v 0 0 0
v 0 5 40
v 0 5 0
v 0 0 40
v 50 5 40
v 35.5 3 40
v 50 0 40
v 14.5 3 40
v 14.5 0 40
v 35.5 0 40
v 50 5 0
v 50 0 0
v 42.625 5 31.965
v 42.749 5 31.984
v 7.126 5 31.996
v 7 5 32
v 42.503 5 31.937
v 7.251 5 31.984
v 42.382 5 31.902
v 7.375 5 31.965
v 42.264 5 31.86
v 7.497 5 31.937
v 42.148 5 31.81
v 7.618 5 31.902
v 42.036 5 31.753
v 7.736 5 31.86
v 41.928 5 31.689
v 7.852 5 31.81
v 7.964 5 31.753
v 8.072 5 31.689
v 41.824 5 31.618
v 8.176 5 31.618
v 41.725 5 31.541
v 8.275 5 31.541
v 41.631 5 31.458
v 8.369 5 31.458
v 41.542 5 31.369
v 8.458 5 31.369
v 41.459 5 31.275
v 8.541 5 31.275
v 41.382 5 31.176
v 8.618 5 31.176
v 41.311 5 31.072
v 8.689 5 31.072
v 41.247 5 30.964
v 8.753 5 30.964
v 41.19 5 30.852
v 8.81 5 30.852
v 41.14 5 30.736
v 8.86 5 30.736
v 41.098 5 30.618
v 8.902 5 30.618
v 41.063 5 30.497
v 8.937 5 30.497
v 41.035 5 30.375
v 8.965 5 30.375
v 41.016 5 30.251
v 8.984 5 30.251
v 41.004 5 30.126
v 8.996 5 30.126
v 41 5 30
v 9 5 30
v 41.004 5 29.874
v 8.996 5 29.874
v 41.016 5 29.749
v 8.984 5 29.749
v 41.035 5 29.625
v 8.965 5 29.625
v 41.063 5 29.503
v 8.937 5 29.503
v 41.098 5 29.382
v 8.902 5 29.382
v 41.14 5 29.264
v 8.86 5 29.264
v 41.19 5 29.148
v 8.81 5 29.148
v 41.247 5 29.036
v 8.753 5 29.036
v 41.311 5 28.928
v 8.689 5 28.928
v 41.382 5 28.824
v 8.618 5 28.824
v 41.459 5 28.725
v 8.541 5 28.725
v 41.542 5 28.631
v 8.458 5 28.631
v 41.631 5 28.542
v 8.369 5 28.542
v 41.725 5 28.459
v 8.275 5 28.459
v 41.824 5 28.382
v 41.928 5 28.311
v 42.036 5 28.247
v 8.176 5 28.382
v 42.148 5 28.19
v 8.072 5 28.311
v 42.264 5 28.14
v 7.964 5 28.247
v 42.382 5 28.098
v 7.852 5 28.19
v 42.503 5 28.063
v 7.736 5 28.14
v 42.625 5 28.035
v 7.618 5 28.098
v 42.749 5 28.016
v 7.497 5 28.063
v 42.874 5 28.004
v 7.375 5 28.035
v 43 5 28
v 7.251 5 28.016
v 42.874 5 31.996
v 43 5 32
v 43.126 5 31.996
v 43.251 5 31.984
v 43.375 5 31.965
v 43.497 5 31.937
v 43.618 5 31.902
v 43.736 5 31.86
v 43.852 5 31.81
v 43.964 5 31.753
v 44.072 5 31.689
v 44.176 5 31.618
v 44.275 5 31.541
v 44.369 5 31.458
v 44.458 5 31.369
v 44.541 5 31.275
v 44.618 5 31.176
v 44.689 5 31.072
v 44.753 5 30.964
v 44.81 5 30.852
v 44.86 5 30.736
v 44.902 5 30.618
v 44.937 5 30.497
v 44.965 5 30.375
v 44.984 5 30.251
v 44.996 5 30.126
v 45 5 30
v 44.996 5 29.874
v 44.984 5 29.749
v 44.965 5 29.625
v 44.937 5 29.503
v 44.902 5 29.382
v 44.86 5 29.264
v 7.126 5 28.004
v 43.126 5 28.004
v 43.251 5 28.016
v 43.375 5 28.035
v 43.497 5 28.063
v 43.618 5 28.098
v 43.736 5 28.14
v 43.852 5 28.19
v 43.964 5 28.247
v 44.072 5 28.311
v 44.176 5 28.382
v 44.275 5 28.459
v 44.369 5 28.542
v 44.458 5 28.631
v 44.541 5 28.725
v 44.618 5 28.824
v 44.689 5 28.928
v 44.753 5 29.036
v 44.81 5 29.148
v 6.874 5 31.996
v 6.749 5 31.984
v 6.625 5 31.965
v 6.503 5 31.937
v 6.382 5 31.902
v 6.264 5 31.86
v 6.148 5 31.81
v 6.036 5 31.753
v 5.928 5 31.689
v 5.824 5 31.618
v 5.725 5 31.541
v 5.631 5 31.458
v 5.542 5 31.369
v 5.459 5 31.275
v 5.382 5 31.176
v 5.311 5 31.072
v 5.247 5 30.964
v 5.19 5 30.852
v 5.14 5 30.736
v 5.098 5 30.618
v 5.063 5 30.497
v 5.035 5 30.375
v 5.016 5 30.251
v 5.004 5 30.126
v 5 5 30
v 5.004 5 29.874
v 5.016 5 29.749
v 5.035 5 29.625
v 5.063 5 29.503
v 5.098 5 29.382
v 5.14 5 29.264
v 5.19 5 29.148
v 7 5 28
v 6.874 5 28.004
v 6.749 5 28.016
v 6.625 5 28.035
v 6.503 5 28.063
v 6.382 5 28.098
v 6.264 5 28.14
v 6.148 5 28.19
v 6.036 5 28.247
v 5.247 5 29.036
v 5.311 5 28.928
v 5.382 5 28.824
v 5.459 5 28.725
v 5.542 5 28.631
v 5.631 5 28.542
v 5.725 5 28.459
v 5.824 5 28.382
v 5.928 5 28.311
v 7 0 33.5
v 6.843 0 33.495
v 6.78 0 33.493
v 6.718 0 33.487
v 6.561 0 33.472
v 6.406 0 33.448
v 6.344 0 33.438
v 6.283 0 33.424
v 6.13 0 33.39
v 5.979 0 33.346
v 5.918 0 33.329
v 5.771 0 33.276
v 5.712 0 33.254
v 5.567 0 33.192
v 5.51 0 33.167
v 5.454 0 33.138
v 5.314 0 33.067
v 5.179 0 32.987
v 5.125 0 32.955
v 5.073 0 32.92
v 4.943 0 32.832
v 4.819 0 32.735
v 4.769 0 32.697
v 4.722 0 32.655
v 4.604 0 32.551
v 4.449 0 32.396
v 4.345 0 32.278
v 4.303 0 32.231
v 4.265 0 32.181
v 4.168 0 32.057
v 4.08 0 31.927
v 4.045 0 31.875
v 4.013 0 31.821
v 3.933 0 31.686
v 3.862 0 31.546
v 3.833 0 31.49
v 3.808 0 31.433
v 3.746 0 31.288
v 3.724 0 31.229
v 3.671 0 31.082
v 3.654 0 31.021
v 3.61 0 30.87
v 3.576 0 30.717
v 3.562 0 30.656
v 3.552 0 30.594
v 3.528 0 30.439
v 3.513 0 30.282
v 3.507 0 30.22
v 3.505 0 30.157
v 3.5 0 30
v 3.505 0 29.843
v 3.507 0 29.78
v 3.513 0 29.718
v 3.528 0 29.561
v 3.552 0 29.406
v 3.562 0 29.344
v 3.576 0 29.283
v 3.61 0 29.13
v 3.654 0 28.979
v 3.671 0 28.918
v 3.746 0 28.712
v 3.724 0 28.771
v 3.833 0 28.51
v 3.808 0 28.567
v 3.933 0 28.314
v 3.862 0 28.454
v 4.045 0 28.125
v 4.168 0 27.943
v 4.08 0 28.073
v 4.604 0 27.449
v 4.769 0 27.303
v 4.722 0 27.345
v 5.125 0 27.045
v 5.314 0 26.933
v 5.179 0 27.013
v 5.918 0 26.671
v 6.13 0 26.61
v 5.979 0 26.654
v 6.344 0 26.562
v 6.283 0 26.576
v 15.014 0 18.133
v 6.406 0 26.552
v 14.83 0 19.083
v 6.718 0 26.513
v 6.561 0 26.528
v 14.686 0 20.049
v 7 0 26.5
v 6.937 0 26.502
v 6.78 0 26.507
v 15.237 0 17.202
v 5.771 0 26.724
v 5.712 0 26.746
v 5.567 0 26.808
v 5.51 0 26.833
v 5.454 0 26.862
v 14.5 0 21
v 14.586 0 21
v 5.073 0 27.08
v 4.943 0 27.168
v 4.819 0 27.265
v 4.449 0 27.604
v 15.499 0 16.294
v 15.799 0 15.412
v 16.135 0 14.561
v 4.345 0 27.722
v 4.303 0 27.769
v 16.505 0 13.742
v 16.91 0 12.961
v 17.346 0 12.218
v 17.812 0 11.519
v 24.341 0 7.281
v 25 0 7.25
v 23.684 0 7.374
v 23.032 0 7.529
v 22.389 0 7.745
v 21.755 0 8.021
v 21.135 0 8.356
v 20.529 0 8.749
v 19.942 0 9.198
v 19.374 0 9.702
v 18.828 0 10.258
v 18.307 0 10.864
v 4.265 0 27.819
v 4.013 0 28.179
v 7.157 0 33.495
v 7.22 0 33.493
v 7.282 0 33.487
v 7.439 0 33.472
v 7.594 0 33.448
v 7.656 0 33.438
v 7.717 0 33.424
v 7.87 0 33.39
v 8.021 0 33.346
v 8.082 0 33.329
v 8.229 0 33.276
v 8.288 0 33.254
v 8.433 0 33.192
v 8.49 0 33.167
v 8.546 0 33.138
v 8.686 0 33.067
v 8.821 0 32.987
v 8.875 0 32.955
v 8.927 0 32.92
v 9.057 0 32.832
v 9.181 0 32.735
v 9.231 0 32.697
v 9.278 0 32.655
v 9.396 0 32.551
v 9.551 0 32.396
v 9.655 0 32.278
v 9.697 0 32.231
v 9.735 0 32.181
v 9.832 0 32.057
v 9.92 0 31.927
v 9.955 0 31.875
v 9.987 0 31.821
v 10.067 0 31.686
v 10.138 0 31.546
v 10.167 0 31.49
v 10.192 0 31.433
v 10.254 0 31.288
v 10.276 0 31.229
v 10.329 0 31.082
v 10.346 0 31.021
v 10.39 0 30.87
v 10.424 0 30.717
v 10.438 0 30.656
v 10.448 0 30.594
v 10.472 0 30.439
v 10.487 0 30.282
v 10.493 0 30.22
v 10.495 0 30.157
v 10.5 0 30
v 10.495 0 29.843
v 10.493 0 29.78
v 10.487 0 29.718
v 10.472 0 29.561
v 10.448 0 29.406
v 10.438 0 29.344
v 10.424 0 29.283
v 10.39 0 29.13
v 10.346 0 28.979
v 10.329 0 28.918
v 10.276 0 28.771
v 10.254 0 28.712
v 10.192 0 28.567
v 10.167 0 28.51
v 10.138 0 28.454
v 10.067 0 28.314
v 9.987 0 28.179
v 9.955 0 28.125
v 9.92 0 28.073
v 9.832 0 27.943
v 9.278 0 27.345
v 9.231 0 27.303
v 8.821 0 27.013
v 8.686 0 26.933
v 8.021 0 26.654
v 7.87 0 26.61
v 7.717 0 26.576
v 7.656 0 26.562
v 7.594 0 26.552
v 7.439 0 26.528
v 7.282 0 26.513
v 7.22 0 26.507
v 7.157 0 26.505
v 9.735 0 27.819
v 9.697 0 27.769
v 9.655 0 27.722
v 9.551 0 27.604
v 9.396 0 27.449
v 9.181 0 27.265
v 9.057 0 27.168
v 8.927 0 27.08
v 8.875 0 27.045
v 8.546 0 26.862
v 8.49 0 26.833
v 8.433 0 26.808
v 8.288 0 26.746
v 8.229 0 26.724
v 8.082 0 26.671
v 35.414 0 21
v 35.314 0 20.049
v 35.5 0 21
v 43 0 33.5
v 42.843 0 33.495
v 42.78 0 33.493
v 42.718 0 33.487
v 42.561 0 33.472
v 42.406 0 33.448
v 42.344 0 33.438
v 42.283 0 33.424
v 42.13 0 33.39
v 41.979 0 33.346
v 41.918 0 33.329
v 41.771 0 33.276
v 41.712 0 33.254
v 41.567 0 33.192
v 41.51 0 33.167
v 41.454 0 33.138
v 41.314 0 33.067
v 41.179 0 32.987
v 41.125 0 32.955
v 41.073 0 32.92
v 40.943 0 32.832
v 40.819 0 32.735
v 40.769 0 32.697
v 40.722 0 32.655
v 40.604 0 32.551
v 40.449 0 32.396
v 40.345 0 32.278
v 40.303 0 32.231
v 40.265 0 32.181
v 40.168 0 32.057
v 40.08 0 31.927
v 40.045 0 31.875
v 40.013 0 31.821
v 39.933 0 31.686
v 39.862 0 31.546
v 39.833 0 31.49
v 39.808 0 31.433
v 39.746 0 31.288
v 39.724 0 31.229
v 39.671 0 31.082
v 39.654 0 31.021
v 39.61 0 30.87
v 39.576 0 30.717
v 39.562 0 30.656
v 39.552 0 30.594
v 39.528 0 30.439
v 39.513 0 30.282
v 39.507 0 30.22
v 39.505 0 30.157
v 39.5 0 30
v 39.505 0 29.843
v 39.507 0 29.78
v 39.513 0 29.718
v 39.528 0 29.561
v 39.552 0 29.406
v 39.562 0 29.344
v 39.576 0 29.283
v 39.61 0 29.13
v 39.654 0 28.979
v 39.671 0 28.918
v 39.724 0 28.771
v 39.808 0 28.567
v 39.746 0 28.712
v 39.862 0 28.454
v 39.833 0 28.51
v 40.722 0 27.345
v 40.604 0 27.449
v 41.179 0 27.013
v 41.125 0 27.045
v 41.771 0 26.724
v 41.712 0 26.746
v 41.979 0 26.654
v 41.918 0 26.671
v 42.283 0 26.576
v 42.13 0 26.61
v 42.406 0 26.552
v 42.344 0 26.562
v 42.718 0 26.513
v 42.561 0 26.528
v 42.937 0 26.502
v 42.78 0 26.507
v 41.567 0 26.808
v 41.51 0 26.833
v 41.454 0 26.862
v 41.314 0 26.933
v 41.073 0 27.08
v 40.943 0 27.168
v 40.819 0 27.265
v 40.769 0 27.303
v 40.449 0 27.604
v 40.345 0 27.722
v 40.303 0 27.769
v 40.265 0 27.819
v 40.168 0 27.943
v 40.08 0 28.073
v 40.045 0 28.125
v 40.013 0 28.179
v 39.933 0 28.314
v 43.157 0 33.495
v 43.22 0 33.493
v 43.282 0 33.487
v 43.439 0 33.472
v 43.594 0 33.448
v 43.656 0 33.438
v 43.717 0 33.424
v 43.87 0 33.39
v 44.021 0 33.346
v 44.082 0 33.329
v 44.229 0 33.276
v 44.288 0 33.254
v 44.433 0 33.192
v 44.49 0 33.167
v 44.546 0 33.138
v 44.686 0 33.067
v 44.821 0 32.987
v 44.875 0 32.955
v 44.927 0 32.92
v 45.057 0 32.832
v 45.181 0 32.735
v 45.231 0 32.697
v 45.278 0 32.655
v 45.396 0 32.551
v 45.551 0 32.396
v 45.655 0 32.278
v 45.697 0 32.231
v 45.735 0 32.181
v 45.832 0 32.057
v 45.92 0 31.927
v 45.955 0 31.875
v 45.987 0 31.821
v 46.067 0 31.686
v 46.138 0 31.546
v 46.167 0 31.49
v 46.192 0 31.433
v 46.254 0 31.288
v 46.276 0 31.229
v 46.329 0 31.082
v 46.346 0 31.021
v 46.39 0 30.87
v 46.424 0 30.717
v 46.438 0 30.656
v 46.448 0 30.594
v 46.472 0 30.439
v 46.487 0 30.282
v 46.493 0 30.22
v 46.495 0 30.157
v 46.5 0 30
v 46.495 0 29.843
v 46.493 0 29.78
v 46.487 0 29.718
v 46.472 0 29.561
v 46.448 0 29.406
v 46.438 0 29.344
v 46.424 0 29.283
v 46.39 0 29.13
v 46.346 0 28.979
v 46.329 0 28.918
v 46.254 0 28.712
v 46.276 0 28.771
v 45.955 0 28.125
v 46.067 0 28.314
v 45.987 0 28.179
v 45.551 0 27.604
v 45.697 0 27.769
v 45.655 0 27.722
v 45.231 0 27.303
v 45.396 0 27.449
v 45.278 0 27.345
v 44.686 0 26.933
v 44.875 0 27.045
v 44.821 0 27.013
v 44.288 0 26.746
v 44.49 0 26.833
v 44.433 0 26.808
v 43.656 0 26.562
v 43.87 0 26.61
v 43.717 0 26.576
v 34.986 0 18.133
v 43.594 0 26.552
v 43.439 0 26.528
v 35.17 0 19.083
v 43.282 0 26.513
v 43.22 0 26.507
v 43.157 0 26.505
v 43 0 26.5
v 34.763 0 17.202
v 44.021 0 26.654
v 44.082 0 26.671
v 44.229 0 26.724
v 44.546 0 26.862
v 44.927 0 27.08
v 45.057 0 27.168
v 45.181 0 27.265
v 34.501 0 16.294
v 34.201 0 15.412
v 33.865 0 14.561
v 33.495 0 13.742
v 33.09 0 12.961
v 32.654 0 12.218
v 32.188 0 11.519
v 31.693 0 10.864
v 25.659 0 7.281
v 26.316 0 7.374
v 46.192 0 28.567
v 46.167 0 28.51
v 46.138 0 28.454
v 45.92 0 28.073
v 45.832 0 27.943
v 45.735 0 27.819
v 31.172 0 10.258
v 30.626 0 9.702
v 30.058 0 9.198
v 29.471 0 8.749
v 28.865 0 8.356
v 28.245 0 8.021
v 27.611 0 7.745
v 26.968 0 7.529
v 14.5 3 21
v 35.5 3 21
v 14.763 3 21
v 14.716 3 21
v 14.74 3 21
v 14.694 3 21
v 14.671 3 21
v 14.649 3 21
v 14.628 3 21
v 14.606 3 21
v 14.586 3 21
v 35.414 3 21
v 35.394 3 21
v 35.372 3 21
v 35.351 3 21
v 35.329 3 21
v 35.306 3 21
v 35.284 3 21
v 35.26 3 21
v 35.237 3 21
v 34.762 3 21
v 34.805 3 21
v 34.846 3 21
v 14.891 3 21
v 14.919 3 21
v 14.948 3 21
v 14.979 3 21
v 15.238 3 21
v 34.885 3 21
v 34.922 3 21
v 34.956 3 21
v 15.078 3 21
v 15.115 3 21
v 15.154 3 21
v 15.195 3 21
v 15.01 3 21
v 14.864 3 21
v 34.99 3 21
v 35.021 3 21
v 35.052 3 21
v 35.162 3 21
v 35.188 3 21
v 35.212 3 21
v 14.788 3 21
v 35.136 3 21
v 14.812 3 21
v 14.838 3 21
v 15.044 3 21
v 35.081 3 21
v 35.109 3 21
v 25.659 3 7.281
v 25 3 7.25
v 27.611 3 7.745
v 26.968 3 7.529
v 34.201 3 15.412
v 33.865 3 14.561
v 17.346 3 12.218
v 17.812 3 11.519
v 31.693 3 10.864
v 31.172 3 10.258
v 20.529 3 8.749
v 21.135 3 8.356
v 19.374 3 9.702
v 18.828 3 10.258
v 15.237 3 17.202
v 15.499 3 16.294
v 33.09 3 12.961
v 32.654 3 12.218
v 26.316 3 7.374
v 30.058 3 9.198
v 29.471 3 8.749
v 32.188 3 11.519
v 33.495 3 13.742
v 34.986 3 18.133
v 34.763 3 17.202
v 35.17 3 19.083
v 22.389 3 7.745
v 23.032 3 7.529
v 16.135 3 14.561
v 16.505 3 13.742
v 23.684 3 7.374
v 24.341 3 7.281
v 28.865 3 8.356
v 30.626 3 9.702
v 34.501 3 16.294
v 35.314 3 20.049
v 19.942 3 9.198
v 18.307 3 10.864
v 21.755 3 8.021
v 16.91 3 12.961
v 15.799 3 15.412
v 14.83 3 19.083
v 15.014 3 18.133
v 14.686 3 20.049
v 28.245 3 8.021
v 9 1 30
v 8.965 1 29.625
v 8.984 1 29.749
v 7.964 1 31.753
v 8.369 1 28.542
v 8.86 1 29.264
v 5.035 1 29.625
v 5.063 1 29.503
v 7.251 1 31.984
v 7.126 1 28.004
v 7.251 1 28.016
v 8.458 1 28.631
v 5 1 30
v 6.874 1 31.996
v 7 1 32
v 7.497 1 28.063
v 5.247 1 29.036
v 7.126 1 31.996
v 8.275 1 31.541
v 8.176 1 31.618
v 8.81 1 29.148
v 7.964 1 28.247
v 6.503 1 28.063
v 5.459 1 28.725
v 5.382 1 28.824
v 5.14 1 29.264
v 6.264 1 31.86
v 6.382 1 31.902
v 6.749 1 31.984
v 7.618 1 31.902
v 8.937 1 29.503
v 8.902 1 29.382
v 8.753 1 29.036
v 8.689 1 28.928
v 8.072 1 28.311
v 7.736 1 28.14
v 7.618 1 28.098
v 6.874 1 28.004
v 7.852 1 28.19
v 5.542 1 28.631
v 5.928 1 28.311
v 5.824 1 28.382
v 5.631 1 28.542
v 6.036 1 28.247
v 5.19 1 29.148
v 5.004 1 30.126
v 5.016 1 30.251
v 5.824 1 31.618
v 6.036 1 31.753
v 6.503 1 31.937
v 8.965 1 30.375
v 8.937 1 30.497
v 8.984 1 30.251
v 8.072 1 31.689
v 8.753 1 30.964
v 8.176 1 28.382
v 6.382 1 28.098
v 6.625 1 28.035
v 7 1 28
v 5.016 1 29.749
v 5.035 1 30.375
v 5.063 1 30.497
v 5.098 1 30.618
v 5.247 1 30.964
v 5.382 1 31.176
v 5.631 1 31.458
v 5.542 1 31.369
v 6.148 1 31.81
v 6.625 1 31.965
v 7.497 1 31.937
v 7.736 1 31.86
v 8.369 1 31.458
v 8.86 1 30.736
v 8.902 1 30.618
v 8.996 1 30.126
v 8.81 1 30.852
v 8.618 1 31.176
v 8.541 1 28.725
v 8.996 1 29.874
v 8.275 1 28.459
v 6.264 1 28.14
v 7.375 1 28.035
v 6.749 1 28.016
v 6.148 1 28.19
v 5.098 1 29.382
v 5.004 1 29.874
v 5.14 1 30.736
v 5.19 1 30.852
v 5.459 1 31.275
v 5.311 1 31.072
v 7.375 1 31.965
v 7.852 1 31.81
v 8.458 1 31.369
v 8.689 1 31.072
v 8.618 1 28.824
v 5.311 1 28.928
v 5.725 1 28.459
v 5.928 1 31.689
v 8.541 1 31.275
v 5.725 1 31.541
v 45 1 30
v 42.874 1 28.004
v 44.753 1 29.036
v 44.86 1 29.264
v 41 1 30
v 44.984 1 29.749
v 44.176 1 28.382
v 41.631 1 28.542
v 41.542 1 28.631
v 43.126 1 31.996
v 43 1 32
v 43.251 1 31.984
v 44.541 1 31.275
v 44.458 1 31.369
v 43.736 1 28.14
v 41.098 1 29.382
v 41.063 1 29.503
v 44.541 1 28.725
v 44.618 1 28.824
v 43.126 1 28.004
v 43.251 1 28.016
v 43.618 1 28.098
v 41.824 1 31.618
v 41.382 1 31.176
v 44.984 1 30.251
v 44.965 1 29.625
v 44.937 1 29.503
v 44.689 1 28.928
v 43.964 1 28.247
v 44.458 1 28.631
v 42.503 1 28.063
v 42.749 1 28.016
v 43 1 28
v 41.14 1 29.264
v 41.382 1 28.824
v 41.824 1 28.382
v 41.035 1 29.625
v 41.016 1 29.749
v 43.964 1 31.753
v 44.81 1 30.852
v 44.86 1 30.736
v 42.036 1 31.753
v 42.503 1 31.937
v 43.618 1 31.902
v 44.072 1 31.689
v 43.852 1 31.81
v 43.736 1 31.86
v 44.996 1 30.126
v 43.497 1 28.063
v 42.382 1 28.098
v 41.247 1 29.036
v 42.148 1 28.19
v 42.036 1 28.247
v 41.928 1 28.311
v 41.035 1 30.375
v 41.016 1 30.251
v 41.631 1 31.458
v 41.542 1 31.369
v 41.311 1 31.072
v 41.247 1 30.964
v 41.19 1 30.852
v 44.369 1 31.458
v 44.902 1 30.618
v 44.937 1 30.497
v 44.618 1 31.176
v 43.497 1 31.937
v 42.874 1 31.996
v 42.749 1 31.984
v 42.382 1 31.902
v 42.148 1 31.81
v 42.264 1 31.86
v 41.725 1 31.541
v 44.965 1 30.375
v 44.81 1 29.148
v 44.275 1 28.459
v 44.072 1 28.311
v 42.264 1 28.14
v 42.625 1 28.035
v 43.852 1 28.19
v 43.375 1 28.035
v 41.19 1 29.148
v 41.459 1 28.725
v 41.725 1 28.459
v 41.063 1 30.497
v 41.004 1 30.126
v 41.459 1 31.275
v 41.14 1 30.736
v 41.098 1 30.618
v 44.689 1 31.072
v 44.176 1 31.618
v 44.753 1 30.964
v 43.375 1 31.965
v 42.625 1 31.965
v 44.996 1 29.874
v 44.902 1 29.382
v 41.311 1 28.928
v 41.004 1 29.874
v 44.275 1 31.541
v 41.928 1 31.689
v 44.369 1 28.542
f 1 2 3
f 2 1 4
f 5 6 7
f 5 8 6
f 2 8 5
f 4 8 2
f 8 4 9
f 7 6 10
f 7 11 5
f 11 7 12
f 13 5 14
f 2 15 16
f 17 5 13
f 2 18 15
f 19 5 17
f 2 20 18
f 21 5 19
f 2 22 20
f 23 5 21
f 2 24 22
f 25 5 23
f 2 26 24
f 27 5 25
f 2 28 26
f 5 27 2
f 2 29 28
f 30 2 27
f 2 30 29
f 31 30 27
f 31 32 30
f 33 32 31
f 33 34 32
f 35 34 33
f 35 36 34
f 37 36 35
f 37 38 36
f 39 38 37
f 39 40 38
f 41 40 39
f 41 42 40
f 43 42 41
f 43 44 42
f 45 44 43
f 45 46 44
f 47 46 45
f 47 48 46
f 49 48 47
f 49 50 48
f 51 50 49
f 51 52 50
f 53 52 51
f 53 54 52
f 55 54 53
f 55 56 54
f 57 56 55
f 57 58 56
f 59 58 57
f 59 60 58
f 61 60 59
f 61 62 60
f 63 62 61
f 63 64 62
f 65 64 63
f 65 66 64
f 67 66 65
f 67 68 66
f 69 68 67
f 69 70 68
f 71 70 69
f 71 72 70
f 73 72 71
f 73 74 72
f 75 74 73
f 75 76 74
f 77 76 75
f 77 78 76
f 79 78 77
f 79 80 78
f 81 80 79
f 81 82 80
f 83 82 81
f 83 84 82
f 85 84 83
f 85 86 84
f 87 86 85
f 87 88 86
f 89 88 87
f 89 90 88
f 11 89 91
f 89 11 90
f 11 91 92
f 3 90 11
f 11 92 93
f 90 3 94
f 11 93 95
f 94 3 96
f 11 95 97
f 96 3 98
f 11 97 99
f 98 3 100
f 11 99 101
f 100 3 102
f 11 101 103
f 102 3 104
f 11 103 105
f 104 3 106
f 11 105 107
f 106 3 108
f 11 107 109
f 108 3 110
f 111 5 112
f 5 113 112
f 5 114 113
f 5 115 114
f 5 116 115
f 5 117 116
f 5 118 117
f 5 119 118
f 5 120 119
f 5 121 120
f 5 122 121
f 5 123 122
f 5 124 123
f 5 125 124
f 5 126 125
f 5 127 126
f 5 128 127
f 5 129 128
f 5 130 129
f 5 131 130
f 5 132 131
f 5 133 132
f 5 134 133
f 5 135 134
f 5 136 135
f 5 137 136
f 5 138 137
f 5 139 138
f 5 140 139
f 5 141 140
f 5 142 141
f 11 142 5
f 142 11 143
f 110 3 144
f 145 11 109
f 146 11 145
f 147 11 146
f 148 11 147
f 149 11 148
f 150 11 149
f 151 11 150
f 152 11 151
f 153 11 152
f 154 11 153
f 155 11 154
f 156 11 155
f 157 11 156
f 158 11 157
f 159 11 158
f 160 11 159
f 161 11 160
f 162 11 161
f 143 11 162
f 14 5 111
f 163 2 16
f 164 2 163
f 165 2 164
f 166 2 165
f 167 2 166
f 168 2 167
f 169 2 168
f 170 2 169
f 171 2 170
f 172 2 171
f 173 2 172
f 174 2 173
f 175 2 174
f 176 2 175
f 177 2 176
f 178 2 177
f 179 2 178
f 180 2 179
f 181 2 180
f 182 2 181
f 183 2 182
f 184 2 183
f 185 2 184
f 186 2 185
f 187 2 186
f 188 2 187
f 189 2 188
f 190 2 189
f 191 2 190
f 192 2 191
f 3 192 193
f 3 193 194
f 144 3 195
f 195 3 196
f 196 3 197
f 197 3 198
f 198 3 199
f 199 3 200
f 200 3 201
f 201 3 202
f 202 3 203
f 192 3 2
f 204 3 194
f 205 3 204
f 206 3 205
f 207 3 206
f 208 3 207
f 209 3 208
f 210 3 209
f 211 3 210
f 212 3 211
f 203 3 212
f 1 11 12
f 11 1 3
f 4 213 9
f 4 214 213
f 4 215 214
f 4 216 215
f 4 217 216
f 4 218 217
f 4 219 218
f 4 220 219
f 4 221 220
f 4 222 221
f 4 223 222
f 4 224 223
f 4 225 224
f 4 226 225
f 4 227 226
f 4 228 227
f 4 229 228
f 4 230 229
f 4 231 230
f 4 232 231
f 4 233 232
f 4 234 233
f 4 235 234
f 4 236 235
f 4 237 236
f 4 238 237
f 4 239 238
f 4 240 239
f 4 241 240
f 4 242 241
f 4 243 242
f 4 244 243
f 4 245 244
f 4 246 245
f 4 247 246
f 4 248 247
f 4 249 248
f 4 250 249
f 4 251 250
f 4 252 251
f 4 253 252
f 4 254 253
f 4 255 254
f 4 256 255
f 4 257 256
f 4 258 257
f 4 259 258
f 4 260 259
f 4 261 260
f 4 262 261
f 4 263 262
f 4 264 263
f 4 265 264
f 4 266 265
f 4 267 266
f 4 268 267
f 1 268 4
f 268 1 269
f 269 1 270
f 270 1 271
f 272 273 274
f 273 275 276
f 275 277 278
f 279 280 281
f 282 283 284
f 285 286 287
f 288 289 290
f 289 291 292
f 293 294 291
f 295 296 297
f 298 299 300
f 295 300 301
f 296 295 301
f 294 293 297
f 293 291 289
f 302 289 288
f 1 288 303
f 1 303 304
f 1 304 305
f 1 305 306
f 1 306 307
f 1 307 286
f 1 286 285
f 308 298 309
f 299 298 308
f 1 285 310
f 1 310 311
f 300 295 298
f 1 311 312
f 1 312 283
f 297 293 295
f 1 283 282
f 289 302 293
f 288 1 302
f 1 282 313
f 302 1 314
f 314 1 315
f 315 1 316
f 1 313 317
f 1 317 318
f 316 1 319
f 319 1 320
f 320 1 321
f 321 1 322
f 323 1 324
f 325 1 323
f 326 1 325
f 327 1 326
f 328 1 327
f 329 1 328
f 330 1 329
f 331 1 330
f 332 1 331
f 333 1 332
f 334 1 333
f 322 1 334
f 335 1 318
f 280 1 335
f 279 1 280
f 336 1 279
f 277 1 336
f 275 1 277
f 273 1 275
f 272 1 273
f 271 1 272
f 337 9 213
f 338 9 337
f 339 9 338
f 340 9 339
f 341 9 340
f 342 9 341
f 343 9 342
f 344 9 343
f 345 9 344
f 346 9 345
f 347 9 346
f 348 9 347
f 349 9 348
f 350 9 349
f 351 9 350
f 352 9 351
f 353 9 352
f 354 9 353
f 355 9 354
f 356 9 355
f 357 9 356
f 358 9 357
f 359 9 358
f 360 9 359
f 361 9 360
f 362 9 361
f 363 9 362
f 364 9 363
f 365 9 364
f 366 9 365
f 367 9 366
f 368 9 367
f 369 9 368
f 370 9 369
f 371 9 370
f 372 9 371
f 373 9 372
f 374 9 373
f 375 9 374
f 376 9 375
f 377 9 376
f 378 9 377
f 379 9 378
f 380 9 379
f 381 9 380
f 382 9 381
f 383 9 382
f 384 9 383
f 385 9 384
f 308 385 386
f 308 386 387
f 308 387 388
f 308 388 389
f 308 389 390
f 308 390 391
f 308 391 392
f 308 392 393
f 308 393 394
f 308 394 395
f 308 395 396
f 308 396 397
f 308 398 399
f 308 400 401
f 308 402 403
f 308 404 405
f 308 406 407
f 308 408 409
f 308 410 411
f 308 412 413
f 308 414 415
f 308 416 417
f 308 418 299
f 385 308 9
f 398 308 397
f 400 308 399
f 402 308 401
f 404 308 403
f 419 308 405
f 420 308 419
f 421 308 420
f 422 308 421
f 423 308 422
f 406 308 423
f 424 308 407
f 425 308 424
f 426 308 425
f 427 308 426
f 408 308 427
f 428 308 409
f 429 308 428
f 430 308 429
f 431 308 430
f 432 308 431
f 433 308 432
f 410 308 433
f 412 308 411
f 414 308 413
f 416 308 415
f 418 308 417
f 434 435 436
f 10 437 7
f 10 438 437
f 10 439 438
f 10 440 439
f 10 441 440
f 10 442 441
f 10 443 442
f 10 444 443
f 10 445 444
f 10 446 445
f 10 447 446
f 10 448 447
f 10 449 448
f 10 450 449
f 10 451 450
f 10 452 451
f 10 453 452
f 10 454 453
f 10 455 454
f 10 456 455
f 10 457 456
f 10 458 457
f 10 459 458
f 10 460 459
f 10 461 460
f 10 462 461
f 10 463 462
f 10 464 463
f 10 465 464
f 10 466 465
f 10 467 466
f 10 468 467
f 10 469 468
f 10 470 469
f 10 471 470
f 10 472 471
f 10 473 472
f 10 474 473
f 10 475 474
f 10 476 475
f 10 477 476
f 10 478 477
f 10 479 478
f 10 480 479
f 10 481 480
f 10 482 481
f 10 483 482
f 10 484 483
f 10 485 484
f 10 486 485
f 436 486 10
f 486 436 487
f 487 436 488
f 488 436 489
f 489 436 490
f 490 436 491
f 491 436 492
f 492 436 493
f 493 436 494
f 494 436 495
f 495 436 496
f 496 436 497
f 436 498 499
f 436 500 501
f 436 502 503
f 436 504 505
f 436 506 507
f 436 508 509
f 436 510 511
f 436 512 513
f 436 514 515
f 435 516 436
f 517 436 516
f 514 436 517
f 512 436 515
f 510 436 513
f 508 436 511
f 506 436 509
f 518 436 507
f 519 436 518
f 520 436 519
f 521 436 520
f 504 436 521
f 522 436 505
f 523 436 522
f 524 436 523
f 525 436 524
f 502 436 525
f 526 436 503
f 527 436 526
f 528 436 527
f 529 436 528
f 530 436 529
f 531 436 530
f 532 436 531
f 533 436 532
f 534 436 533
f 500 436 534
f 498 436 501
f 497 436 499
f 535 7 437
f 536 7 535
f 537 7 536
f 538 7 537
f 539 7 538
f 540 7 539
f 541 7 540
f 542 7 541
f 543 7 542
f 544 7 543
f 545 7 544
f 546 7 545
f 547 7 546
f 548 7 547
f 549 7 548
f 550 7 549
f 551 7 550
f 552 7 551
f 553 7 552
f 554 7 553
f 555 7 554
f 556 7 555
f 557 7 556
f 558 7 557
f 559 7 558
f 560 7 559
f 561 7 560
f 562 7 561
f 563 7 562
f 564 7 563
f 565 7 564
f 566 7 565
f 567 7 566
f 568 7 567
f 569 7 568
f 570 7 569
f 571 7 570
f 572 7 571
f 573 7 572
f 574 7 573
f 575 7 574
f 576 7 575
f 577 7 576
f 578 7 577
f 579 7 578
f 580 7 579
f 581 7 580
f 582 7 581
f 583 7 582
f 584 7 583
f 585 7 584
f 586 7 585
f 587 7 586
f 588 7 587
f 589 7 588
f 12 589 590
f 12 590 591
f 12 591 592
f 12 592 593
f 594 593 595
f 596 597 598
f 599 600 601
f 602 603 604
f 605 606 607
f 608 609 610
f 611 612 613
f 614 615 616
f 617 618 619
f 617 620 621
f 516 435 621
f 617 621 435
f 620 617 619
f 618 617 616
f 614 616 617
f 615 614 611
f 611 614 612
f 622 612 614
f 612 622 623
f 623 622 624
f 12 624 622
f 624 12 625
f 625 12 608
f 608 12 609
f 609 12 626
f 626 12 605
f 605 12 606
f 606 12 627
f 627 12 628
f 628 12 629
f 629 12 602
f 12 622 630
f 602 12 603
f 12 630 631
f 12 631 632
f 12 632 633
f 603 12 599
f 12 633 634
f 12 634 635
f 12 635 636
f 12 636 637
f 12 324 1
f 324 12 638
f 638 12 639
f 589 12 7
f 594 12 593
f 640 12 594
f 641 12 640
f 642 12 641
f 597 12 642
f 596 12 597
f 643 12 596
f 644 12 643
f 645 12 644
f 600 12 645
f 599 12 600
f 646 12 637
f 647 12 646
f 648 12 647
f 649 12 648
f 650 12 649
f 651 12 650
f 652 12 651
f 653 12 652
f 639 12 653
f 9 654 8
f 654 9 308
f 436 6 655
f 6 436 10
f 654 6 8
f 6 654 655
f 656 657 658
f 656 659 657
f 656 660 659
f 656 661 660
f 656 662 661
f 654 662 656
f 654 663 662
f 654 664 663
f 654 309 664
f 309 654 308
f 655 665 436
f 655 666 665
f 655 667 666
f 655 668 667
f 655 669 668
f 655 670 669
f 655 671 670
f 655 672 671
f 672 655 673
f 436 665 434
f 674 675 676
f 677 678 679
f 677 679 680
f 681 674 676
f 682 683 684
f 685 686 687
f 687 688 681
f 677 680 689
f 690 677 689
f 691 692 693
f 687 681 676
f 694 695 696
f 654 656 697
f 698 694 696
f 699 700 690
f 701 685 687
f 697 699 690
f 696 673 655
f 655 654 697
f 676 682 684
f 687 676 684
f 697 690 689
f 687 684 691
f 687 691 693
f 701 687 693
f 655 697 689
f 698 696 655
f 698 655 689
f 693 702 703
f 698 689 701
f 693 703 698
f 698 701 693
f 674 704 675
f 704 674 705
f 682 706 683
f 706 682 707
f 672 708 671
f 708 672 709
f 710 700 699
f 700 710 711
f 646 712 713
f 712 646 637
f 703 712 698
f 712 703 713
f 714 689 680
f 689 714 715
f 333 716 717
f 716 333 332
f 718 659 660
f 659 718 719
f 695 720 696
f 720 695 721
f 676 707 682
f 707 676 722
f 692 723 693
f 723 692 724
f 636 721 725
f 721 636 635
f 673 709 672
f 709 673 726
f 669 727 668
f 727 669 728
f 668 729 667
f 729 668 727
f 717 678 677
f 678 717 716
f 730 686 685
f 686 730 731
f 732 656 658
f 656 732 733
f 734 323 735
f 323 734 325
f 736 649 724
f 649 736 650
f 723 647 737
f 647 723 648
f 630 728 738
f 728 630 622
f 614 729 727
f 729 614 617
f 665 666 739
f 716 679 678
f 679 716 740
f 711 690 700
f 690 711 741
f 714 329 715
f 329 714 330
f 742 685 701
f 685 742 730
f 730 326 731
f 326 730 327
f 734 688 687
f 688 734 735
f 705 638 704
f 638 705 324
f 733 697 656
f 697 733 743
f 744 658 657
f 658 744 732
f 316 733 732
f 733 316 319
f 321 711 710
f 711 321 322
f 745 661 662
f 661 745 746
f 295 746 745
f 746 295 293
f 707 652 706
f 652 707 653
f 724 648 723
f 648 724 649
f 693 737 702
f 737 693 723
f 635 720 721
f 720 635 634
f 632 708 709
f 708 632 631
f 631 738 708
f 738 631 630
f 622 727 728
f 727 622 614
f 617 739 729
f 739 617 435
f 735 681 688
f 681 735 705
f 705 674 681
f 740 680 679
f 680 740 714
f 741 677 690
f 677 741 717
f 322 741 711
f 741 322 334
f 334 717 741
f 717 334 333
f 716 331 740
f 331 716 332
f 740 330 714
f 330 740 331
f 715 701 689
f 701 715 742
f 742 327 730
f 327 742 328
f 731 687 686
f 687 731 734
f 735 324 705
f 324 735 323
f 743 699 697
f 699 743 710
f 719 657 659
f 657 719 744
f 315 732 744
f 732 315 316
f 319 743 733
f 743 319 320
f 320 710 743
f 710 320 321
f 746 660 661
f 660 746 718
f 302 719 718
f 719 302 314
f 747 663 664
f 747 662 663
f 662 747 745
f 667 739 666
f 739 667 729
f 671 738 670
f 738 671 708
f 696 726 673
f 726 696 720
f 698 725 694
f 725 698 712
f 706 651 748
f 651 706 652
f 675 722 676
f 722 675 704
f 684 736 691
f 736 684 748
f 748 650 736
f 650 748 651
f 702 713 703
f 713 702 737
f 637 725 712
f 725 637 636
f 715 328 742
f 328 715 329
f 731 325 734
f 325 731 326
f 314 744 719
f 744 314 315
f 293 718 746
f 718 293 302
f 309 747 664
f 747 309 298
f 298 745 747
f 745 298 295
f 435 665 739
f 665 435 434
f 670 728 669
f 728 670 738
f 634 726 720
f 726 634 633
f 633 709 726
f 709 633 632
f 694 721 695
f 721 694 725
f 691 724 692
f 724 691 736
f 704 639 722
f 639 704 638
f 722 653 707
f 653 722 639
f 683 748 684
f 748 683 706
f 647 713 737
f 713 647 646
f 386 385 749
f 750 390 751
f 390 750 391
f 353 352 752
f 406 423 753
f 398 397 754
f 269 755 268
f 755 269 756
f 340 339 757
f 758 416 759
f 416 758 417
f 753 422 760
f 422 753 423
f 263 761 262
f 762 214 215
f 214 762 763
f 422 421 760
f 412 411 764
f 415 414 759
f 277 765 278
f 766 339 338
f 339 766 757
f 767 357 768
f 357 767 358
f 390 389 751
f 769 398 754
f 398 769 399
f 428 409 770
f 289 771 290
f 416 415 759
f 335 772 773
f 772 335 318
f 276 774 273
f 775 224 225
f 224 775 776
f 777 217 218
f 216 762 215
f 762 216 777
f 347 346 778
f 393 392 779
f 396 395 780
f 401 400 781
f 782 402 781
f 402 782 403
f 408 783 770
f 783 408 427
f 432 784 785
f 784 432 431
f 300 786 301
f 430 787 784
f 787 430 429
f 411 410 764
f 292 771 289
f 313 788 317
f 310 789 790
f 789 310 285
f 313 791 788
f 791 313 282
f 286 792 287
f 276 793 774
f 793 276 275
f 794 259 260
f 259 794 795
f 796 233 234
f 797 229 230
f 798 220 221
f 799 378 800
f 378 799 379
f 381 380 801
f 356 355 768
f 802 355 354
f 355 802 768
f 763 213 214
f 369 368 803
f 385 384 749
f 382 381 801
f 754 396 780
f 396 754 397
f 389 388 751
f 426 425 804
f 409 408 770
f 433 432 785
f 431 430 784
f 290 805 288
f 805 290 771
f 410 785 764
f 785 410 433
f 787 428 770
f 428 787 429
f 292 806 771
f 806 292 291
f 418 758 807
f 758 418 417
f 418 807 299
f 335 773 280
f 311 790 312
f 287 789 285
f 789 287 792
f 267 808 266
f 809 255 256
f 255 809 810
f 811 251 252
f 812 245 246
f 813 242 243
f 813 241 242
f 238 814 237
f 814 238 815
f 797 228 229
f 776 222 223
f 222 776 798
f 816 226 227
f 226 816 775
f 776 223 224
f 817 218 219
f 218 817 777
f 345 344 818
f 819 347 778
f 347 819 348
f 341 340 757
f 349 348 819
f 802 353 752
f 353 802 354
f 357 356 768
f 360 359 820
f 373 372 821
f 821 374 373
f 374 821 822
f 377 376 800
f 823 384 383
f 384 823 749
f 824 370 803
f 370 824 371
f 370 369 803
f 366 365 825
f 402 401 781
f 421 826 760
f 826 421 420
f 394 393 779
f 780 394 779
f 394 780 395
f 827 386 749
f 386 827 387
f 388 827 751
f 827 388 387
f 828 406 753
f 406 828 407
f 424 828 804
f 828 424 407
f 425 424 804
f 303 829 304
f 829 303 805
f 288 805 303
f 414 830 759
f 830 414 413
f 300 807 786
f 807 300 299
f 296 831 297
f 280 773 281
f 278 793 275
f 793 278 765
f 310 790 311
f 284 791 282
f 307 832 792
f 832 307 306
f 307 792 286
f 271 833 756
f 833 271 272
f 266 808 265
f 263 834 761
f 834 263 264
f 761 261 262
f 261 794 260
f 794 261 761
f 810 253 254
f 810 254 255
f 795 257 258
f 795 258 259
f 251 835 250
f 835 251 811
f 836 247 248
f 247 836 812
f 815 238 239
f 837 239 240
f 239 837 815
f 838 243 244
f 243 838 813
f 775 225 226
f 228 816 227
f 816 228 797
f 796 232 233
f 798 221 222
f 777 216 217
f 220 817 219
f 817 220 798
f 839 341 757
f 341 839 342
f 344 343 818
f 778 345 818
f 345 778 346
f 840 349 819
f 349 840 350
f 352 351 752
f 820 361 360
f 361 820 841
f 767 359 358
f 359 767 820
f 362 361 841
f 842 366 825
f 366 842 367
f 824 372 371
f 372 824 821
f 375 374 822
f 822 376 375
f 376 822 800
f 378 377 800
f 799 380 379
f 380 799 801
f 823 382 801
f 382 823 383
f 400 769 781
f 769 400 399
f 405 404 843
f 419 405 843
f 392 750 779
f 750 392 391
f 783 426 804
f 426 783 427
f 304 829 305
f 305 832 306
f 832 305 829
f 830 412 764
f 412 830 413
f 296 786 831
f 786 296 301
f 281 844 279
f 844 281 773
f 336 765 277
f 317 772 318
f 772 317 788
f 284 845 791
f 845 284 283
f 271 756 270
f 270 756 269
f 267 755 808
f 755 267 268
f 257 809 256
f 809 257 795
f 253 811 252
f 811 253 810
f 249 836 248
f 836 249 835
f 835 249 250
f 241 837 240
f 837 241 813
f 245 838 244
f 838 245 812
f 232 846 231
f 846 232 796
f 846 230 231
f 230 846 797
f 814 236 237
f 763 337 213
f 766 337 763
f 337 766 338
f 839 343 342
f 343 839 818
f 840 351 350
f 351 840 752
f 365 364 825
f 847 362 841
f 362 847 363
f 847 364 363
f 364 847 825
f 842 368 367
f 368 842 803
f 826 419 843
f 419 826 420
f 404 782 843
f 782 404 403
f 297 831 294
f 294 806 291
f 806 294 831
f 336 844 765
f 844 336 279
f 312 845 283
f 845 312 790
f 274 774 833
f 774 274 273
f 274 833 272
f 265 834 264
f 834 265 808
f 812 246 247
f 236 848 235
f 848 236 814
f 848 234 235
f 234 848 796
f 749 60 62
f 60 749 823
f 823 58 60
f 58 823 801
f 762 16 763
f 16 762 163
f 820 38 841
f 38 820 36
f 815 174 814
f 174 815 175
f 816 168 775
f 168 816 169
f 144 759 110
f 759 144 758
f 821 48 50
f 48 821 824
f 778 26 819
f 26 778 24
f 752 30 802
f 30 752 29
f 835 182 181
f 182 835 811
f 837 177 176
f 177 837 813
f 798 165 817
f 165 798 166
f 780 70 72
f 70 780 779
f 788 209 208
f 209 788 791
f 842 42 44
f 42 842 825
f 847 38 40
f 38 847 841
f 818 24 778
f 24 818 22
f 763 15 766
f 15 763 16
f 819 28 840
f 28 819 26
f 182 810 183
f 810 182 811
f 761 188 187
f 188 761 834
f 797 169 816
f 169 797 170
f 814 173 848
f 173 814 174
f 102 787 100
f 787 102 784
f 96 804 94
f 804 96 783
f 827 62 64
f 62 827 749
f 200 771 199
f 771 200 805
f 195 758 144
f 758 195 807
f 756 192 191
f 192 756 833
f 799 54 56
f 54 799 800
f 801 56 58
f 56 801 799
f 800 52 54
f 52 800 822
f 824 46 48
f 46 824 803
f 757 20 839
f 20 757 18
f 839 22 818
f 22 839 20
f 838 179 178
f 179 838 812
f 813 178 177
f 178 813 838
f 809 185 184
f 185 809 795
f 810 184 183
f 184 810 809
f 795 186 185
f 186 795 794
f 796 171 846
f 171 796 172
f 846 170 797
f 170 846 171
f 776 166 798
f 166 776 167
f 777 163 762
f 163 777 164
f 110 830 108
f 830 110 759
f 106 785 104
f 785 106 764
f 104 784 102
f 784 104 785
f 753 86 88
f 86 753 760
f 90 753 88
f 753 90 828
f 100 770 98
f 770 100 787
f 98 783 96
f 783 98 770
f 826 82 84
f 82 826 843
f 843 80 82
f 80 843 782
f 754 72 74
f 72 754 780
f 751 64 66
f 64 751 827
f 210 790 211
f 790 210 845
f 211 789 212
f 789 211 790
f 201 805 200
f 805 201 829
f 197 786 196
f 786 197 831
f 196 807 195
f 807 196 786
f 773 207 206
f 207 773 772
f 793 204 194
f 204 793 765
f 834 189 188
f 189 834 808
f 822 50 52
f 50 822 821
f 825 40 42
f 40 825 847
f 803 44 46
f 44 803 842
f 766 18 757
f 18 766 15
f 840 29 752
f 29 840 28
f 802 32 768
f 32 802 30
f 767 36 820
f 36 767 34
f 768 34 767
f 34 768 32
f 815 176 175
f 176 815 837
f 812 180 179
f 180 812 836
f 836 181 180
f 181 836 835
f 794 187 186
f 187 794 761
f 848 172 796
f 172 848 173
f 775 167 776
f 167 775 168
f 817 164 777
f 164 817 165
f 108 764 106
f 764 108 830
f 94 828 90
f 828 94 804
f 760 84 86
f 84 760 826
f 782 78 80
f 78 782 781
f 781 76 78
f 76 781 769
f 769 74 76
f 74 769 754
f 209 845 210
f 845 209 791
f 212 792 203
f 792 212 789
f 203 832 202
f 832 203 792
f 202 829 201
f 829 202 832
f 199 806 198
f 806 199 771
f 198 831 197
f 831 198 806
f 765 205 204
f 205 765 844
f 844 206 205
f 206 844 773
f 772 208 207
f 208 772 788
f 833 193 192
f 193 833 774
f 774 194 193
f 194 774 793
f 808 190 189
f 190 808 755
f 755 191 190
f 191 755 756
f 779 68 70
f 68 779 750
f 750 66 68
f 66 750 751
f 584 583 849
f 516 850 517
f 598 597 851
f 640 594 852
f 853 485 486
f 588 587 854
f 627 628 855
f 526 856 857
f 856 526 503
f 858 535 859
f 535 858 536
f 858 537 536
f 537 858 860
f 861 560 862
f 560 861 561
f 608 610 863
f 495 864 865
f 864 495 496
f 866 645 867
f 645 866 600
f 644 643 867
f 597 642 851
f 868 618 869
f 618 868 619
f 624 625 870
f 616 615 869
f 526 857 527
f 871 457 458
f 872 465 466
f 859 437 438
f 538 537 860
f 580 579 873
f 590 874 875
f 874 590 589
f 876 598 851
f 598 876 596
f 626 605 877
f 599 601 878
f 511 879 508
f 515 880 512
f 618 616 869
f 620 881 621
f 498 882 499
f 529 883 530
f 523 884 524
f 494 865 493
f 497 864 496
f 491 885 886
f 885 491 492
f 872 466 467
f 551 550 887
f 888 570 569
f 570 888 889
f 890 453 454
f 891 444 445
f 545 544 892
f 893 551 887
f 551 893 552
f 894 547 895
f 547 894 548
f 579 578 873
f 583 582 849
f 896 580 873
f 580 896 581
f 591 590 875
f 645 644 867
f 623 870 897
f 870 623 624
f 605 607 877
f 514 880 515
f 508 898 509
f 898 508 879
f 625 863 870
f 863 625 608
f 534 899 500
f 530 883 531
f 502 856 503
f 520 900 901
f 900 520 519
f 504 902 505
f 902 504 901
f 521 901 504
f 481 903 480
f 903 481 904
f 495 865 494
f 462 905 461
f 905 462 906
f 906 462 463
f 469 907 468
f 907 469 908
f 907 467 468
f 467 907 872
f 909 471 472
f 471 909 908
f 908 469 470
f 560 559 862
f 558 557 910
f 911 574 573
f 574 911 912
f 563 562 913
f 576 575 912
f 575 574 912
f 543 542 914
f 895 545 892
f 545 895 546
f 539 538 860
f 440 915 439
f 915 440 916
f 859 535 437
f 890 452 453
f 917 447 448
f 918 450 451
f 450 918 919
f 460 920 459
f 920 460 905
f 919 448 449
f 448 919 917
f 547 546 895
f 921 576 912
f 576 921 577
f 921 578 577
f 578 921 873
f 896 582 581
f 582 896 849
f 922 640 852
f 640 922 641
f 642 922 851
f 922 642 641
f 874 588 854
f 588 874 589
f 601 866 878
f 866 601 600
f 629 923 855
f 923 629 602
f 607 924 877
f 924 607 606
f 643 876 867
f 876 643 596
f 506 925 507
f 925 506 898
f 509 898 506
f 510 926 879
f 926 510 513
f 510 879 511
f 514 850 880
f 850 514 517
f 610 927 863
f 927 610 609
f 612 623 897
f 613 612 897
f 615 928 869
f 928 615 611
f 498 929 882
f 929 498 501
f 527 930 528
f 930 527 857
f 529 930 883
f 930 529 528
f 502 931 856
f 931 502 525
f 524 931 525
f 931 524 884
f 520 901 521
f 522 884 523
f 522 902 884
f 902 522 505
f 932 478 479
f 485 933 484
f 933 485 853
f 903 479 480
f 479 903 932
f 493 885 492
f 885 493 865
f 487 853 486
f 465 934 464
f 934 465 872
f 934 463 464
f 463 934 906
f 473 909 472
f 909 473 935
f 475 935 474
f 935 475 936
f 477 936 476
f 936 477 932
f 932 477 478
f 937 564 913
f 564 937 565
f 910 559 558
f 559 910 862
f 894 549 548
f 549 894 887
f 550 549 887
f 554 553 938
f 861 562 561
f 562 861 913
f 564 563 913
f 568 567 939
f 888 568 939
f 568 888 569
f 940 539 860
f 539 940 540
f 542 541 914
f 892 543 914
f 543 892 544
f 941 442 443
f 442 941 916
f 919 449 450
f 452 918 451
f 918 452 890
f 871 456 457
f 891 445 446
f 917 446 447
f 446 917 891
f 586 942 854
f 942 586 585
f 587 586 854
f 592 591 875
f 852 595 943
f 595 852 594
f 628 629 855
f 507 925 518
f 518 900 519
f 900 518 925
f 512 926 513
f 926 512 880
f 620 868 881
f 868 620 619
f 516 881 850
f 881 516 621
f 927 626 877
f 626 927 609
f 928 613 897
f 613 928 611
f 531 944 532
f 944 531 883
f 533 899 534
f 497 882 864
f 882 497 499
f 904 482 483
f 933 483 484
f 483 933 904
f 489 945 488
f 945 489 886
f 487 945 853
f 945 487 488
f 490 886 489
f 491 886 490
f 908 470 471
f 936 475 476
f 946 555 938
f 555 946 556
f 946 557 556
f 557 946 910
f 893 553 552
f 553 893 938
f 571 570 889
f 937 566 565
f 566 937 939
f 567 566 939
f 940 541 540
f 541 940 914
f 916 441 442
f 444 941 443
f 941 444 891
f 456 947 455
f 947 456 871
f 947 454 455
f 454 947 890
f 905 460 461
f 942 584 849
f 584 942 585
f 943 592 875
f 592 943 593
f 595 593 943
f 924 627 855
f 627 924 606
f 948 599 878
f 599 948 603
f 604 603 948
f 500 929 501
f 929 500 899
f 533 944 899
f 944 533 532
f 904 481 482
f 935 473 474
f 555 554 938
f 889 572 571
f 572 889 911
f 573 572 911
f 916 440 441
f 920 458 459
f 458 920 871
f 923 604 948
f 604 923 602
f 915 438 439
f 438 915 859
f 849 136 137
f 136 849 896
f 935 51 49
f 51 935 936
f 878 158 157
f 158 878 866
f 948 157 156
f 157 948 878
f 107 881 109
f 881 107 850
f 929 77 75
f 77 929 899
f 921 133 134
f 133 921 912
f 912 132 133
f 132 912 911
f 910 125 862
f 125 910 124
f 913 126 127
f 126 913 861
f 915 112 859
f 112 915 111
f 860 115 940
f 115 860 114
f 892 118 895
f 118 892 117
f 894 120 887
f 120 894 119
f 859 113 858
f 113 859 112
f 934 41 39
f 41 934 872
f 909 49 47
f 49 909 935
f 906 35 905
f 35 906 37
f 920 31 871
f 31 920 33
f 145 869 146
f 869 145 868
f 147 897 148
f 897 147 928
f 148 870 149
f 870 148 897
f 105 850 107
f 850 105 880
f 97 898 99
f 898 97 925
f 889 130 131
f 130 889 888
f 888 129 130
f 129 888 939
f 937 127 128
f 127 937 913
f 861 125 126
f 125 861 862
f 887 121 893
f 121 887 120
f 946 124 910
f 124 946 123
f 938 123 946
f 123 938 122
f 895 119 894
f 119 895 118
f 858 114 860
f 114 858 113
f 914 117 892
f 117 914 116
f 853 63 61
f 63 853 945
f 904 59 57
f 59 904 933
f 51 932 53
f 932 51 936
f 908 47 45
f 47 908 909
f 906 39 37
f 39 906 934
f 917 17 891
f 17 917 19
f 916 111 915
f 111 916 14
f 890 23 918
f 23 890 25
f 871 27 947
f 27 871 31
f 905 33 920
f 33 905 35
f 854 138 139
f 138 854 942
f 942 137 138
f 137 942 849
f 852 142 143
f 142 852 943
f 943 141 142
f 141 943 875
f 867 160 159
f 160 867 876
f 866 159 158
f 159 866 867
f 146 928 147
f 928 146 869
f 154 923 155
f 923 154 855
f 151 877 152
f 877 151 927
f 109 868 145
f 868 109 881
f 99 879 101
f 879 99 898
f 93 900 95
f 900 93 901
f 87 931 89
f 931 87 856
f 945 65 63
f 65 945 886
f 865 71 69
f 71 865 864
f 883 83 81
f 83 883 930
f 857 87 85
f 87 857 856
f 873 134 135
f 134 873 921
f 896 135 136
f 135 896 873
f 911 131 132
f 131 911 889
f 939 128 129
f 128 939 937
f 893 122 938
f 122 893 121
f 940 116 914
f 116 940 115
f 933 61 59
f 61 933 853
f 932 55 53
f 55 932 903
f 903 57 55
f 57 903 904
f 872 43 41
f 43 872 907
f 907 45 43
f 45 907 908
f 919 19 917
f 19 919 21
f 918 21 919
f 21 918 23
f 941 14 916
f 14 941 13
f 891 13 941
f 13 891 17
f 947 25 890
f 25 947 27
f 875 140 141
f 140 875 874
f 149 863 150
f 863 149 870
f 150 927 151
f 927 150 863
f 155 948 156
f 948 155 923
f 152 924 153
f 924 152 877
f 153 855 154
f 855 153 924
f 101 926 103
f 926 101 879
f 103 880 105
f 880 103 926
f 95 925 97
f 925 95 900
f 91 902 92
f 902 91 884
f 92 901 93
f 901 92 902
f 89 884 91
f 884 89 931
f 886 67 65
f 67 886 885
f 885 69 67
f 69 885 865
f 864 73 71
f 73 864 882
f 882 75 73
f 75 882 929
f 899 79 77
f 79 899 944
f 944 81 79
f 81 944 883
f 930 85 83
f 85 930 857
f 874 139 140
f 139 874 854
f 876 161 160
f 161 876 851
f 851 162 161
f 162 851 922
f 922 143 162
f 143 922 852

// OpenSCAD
//--------------------------------------------------------------
// Name: Wardrobe_leg_holder.scad
// Version: 0.9
// Purpose: Wardrobe leg holder
// Author: Evgeny Klepikov
// E-mail: klek07@ya.ru
//
// Created: 28.12.2017
// Updated: 20.02.2018
// Copyright: (c) 2017-2018 WildFox24
// Licence: GPL v3
//--------------------------------------------------------------
//
Ws=5;
Wd=50;
Wd1=21;
Ht=40;
Dc=21;
$fn=100;
module WardrobLegHolder() {
    difference() {
        translate([0,0,0]) cube([Wd,Ws,Ht], false);
        translate([Wd/2-Wd1/2,-2,Wd1]) cube([Wd1,Ws,Ht+1]);
        translate([Wd/2,Ws-2,Wd1+2]) rotate([90,0,0]) scale([1,1.5,1]) cylinder(d=Dc, h=Ws);
    }
}
module ScrewHole(hx,hy,hz) {
  translate([hx,hy-hy-1,hz]) rotate([-90,0,0]) cylinder(d1=10, d2=4, h=2);
  translate([hx,hy,hz]) rotate([90,0,0]) cylinder(d=4, h=Ws+10);
}
difference() {
  WardrobLegHolder();
  ScrewHole(7,10,30);
  ScrewHole(43,10,30);
}
